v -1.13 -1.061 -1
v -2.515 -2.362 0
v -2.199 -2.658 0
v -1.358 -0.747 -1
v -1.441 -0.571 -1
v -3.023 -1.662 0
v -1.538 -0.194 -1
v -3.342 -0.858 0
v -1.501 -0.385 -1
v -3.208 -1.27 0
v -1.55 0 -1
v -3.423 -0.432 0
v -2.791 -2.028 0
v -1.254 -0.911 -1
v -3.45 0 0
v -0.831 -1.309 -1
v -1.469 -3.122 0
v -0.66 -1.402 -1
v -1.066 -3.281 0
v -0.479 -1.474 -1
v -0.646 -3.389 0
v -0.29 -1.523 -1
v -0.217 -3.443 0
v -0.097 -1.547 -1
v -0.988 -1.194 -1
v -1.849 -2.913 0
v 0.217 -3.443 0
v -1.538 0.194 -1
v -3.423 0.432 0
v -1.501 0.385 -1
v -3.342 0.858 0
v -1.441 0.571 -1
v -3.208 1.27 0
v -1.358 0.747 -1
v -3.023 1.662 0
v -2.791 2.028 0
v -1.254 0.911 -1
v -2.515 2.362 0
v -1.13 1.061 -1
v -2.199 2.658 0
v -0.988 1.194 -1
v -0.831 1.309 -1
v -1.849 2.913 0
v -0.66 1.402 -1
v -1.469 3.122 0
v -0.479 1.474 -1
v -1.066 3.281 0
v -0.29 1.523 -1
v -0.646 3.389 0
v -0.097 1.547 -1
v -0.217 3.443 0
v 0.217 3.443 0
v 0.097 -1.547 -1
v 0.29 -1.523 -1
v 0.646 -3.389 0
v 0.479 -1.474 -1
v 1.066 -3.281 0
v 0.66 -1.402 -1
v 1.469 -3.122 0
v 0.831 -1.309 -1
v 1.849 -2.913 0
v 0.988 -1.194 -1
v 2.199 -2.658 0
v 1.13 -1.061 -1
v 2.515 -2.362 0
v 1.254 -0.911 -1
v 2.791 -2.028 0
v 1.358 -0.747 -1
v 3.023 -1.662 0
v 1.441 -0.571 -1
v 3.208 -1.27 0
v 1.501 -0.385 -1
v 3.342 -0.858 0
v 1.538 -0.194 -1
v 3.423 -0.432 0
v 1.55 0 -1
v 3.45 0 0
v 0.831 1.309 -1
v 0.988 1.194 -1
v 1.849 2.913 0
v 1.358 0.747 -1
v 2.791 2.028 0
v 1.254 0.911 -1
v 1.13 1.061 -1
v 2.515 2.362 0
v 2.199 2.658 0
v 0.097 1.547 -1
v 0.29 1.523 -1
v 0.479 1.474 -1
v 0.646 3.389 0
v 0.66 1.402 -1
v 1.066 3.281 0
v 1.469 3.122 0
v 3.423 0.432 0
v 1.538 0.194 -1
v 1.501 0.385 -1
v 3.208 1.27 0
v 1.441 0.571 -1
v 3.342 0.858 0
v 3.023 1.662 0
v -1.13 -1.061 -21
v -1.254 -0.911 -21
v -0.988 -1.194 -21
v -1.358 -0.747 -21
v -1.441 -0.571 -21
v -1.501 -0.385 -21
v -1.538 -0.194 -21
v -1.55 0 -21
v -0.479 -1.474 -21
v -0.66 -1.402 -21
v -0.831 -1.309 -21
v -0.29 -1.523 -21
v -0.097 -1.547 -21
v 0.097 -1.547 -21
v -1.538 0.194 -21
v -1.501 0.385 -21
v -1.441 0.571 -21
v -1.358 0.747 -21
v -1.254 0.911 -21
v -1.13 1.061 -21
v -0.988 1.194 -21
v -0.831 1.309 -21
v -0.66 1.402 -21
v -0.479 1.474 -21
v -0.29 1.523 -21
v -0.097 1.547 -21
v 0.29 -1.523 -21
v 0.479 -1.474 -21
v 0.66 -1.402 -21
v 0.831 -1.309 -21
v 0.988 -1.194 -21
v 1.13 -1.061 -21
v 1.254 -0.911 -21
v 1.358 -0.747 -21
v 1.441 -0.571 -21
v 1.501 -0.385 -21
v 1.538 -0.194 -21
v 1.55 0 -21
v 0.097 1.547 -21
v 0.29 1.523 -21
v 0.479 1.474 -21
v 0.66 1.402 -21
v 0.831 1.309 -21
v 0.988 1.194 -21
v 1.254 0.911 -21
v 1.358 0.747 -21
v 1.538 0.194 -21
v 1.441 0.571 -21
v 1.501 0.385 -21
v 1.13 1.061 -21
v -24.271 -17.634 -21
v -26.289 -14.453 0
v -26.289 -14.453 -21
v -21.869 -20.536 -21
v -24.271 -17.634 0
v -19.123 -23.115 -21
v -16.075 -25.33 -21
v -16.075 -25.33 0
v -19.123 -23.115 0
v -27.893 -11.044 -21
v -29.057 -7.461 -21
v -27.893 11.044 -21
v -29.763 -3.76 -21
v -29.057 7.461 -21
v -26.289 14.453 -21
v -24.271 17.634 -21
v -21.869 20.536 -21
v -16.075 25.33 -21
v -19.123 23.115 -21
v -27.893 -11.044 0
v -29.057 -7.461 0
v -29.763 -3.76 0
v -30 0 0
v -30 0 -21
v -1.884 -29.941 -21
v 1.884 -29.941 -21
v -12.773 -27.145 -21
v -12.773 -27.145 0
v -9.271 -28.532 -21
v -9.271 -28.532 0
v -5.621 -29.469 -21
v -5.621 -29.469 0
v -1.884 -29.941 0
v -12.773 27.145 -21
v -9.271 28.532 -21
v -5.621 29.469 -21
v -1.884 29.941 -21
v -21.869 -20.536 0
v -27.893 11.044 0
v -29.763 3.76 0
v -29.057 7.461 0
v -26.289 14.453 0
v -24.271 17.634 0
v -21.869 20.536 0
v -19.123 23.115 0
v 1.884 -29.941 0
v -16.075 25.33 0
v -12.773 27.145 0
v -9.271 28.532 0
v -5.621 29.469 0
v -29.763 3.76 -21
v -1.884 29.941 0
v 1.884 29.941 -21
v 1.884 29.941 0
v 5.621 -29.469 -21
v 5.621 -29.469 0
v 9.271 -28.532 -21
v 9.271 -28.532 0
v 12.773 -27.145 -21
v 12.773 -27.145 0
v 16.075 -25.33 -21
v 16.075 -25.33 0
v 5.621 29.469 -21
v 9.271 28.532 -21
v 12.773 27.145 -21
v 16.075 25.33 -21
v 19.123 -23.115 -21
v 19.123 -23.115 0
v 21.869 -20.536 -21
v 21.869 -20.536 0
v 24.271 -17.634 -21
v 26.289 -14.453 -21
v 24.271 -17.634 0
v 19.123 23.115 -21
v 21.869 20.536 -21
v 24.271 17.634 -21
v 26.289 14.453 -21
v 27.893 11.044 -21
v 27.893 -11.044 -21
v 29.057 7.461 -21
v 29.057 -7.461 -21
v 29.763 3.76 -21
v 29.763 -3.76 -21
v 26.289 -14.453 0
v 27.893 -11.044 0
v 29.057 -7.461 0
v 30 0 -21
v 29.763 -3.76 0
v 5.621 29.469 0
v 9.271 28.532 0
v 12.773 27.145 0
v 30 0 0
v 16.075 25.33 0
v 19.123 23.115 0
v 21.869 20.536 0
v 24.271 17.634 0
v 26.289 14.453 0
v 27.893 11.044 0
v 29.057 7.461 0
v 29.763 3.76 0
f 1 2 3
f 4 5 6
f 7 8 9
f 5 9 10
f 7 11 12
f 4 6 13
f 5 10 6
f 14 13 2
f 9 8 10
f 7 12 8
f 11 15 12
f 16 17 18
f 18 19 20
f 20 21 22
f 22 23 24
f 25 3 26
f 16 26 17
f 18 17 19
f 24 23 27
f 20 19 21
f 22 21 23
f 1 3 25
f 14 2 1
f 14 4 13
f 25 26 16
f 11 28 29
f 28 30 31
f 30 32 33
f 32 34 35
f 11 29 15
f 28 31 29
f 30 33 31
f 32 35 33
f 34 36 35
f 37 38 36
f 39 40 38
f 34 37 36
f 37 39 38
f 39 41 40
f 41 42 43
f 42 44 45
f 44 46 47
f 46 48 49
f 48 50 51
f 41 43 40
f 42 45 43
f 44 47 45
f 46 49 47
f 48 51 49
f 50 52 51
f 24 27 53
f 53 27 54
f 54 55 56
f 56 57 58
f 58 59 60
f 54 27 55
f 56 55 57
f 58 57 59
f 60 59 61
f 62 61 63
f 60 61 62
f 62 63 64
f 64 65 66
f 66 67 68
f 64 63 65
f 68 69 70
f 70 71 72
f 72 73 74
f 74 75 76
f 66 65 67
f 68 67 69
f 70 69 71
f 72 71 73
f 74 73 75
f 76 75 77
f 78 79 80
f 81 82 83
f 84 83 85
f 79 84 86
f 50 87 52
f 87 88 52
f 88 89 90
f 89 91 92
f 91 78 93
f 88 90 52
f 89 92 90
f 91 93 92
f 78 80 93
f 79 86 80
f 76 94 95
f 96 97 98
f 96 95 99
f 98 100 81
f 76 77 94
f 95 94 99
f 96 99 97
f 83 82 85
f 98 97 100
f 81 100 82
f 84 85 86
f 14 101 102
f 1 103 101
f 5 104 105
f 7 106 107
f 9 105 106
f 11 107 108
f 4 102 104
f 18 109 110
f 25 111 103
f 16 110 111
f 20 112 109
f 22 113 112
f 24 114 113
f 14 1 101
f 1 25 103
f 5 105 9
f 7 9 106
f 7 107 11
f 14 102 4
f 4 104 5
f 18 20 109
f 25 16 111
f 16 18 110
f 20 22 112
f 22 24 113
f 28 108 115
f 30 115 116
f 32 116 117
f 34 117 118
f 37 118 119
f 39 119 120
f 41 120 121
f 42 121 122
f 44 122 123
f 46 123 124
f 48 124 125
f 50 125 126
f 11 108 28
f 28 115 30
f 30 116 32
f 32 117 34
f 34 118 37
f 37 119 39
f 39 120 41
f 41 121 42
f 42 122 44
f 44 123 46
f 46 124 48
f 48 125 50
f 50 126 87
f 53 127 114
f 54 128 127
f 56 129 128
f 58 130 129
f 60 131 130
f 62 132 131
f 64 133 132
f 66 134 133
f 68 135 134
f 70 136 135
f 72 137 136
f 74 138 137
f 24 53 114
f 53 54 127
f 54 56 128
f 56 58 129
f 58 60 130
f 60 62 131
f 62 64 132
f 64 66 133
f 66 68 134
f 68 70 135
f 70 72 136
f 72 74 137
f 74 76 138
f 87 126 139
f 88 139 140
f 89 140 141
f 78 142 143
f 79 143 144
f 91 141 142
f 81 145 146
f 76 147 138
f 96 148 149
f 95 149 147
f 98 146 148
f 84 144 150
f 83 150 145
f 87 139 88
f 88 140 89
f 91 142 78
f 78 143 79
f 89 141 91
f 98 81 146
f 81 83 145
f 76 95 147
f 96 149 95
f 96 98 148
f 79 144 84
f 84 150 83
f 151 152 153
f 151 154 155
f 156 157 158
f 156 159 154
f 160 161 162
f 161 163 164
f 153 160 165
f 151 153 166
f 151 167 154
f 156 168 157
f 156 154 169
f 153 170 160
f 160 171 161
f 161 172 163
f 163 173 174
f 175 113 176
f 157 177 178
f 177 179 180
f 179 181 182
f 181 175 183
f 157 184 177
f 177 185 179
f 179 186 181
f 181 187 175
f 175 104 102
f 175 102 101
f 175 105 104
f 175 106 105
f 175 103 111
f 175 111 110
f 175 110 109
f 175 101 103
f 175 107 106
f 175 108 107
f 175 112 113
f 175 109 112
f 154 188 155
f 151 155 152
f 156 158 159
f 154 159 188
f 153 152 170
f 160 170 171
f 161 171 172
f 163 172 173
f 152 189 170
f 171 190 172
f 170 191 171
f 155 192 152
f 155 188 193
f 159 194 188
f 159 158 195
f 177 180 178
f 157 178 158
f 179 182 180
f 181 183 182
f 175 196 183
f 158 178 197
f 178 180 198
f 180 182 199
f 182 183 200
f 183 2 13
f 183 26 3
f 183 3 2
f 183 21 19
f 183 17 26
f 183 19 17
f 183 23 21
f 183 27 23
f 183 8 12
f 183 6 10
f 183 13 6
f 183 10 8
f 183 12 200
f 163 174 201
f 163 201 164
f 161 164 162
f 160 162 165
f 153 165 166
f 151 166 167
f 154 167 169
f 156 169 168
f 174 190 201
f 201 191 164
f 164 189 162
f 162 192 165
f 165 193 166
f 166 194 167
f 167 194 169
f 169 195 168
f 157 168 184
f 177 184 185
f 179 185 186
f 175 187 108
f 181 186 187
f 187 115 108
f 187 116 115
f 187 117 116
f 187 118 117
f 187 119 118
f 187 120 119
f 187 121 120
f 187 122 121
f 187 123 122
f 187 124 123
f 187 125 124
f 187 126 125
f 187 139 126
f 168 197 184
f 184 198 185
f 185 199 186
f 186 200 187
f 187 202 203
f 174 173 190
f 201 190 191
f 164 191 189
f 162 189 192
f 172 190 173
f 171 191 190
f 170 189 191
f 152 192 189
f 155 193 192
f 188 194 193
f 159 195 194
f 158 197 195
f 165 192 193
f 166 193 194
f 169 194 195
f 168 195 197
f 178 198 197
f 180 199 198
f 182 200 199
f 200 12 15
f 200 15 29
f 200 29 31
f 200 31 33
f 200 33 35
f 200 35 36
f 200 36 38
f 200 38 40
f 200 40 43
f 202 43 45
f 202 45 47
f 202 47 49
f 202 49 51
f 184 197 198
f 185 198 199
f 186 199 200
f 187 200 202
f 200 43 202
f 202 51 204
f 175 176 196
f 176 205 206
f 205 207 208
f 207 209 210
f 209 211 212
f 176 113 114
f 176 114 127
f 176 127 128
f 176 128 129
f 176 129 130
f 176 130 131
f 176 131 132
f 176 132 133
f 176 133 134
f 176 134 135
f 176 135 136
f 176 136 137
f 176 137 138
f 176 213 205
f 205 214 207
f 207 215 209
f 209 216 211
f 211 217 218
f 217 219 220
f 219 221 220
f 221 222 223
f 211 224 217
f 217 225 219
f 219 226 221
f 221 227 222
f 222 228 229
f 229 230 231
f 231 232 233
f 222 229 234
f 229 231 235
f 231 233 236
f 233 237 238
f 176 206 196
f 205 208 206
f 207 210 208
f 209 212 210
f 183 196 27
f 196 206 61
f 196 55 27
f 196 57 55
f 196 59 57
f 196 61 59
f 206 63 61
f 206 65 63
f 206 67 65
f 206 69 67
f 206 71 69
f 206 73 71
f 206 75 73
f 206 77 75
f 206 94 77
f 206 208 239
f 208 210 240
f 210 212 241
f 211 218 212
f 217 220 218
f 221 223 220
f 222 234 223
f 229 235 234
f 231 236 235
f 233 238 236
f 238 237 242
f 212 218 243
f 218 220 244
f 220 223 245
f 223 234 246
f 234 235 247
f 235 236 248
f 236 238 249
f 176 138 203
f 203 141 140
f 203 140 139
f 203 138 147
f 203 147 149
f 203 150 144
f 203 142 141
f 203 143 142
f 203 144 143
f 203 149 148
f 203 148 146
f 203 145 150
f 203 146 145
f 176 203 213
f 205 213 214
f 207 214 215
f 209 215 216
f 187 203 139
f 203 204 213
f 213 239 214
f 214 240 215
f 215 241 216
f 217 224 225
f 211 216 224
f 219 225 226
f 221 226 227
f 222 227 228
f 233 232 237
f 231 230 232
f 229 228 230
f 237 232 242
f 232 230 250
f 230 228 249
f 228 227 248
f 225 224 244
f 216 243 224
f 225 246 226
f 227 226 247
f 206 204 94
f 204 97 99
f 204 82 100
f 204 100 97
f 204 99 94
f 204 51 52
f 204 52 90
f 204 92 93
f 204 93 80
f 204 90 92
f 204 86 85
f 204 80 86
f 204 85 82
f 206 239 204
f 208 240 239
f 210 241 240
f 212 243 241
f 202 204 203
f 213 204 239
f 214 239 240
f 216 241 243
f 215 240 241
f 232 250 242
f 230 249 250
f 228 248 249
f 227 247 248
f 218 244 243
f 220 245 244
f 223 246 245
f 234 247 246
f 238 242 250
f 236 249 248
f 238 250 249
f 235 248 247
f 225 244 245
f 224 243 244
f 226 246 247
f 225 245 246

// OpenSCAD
$fn = 50;


difference() {
	union() {
		translate(v = [0, 0, -21.0000000000]) {
			cylinder(h = 21, r = 30.0000000000);
		}
	}
	union() {
		translate(v = [0, 0, 0]) {
			rotate(a = [0, 0, 0]) {
				difference() {
					union() {
						translate(v = [0, 0, -24.0000000000]) {
							cylinder(h = 24, r = 1.2500000000);
						}
						translate(v = [0, 0, -1.0000000000]) {
							cylinder(h = 1.0000000000, r1 = 1.5500000000, r2 = 3.4500000000);
						}
						translate(v = [0, 0, -24.0000000000]) {
							cylinder(h = 24, r = 1.5500000000);
						}
						translate(v = [0, 0, -24.0000000000]) {
							cylinder(h = 24, r = 1.2500000000);
						}
					}
					union();
				}
			}
		}
	}
}
